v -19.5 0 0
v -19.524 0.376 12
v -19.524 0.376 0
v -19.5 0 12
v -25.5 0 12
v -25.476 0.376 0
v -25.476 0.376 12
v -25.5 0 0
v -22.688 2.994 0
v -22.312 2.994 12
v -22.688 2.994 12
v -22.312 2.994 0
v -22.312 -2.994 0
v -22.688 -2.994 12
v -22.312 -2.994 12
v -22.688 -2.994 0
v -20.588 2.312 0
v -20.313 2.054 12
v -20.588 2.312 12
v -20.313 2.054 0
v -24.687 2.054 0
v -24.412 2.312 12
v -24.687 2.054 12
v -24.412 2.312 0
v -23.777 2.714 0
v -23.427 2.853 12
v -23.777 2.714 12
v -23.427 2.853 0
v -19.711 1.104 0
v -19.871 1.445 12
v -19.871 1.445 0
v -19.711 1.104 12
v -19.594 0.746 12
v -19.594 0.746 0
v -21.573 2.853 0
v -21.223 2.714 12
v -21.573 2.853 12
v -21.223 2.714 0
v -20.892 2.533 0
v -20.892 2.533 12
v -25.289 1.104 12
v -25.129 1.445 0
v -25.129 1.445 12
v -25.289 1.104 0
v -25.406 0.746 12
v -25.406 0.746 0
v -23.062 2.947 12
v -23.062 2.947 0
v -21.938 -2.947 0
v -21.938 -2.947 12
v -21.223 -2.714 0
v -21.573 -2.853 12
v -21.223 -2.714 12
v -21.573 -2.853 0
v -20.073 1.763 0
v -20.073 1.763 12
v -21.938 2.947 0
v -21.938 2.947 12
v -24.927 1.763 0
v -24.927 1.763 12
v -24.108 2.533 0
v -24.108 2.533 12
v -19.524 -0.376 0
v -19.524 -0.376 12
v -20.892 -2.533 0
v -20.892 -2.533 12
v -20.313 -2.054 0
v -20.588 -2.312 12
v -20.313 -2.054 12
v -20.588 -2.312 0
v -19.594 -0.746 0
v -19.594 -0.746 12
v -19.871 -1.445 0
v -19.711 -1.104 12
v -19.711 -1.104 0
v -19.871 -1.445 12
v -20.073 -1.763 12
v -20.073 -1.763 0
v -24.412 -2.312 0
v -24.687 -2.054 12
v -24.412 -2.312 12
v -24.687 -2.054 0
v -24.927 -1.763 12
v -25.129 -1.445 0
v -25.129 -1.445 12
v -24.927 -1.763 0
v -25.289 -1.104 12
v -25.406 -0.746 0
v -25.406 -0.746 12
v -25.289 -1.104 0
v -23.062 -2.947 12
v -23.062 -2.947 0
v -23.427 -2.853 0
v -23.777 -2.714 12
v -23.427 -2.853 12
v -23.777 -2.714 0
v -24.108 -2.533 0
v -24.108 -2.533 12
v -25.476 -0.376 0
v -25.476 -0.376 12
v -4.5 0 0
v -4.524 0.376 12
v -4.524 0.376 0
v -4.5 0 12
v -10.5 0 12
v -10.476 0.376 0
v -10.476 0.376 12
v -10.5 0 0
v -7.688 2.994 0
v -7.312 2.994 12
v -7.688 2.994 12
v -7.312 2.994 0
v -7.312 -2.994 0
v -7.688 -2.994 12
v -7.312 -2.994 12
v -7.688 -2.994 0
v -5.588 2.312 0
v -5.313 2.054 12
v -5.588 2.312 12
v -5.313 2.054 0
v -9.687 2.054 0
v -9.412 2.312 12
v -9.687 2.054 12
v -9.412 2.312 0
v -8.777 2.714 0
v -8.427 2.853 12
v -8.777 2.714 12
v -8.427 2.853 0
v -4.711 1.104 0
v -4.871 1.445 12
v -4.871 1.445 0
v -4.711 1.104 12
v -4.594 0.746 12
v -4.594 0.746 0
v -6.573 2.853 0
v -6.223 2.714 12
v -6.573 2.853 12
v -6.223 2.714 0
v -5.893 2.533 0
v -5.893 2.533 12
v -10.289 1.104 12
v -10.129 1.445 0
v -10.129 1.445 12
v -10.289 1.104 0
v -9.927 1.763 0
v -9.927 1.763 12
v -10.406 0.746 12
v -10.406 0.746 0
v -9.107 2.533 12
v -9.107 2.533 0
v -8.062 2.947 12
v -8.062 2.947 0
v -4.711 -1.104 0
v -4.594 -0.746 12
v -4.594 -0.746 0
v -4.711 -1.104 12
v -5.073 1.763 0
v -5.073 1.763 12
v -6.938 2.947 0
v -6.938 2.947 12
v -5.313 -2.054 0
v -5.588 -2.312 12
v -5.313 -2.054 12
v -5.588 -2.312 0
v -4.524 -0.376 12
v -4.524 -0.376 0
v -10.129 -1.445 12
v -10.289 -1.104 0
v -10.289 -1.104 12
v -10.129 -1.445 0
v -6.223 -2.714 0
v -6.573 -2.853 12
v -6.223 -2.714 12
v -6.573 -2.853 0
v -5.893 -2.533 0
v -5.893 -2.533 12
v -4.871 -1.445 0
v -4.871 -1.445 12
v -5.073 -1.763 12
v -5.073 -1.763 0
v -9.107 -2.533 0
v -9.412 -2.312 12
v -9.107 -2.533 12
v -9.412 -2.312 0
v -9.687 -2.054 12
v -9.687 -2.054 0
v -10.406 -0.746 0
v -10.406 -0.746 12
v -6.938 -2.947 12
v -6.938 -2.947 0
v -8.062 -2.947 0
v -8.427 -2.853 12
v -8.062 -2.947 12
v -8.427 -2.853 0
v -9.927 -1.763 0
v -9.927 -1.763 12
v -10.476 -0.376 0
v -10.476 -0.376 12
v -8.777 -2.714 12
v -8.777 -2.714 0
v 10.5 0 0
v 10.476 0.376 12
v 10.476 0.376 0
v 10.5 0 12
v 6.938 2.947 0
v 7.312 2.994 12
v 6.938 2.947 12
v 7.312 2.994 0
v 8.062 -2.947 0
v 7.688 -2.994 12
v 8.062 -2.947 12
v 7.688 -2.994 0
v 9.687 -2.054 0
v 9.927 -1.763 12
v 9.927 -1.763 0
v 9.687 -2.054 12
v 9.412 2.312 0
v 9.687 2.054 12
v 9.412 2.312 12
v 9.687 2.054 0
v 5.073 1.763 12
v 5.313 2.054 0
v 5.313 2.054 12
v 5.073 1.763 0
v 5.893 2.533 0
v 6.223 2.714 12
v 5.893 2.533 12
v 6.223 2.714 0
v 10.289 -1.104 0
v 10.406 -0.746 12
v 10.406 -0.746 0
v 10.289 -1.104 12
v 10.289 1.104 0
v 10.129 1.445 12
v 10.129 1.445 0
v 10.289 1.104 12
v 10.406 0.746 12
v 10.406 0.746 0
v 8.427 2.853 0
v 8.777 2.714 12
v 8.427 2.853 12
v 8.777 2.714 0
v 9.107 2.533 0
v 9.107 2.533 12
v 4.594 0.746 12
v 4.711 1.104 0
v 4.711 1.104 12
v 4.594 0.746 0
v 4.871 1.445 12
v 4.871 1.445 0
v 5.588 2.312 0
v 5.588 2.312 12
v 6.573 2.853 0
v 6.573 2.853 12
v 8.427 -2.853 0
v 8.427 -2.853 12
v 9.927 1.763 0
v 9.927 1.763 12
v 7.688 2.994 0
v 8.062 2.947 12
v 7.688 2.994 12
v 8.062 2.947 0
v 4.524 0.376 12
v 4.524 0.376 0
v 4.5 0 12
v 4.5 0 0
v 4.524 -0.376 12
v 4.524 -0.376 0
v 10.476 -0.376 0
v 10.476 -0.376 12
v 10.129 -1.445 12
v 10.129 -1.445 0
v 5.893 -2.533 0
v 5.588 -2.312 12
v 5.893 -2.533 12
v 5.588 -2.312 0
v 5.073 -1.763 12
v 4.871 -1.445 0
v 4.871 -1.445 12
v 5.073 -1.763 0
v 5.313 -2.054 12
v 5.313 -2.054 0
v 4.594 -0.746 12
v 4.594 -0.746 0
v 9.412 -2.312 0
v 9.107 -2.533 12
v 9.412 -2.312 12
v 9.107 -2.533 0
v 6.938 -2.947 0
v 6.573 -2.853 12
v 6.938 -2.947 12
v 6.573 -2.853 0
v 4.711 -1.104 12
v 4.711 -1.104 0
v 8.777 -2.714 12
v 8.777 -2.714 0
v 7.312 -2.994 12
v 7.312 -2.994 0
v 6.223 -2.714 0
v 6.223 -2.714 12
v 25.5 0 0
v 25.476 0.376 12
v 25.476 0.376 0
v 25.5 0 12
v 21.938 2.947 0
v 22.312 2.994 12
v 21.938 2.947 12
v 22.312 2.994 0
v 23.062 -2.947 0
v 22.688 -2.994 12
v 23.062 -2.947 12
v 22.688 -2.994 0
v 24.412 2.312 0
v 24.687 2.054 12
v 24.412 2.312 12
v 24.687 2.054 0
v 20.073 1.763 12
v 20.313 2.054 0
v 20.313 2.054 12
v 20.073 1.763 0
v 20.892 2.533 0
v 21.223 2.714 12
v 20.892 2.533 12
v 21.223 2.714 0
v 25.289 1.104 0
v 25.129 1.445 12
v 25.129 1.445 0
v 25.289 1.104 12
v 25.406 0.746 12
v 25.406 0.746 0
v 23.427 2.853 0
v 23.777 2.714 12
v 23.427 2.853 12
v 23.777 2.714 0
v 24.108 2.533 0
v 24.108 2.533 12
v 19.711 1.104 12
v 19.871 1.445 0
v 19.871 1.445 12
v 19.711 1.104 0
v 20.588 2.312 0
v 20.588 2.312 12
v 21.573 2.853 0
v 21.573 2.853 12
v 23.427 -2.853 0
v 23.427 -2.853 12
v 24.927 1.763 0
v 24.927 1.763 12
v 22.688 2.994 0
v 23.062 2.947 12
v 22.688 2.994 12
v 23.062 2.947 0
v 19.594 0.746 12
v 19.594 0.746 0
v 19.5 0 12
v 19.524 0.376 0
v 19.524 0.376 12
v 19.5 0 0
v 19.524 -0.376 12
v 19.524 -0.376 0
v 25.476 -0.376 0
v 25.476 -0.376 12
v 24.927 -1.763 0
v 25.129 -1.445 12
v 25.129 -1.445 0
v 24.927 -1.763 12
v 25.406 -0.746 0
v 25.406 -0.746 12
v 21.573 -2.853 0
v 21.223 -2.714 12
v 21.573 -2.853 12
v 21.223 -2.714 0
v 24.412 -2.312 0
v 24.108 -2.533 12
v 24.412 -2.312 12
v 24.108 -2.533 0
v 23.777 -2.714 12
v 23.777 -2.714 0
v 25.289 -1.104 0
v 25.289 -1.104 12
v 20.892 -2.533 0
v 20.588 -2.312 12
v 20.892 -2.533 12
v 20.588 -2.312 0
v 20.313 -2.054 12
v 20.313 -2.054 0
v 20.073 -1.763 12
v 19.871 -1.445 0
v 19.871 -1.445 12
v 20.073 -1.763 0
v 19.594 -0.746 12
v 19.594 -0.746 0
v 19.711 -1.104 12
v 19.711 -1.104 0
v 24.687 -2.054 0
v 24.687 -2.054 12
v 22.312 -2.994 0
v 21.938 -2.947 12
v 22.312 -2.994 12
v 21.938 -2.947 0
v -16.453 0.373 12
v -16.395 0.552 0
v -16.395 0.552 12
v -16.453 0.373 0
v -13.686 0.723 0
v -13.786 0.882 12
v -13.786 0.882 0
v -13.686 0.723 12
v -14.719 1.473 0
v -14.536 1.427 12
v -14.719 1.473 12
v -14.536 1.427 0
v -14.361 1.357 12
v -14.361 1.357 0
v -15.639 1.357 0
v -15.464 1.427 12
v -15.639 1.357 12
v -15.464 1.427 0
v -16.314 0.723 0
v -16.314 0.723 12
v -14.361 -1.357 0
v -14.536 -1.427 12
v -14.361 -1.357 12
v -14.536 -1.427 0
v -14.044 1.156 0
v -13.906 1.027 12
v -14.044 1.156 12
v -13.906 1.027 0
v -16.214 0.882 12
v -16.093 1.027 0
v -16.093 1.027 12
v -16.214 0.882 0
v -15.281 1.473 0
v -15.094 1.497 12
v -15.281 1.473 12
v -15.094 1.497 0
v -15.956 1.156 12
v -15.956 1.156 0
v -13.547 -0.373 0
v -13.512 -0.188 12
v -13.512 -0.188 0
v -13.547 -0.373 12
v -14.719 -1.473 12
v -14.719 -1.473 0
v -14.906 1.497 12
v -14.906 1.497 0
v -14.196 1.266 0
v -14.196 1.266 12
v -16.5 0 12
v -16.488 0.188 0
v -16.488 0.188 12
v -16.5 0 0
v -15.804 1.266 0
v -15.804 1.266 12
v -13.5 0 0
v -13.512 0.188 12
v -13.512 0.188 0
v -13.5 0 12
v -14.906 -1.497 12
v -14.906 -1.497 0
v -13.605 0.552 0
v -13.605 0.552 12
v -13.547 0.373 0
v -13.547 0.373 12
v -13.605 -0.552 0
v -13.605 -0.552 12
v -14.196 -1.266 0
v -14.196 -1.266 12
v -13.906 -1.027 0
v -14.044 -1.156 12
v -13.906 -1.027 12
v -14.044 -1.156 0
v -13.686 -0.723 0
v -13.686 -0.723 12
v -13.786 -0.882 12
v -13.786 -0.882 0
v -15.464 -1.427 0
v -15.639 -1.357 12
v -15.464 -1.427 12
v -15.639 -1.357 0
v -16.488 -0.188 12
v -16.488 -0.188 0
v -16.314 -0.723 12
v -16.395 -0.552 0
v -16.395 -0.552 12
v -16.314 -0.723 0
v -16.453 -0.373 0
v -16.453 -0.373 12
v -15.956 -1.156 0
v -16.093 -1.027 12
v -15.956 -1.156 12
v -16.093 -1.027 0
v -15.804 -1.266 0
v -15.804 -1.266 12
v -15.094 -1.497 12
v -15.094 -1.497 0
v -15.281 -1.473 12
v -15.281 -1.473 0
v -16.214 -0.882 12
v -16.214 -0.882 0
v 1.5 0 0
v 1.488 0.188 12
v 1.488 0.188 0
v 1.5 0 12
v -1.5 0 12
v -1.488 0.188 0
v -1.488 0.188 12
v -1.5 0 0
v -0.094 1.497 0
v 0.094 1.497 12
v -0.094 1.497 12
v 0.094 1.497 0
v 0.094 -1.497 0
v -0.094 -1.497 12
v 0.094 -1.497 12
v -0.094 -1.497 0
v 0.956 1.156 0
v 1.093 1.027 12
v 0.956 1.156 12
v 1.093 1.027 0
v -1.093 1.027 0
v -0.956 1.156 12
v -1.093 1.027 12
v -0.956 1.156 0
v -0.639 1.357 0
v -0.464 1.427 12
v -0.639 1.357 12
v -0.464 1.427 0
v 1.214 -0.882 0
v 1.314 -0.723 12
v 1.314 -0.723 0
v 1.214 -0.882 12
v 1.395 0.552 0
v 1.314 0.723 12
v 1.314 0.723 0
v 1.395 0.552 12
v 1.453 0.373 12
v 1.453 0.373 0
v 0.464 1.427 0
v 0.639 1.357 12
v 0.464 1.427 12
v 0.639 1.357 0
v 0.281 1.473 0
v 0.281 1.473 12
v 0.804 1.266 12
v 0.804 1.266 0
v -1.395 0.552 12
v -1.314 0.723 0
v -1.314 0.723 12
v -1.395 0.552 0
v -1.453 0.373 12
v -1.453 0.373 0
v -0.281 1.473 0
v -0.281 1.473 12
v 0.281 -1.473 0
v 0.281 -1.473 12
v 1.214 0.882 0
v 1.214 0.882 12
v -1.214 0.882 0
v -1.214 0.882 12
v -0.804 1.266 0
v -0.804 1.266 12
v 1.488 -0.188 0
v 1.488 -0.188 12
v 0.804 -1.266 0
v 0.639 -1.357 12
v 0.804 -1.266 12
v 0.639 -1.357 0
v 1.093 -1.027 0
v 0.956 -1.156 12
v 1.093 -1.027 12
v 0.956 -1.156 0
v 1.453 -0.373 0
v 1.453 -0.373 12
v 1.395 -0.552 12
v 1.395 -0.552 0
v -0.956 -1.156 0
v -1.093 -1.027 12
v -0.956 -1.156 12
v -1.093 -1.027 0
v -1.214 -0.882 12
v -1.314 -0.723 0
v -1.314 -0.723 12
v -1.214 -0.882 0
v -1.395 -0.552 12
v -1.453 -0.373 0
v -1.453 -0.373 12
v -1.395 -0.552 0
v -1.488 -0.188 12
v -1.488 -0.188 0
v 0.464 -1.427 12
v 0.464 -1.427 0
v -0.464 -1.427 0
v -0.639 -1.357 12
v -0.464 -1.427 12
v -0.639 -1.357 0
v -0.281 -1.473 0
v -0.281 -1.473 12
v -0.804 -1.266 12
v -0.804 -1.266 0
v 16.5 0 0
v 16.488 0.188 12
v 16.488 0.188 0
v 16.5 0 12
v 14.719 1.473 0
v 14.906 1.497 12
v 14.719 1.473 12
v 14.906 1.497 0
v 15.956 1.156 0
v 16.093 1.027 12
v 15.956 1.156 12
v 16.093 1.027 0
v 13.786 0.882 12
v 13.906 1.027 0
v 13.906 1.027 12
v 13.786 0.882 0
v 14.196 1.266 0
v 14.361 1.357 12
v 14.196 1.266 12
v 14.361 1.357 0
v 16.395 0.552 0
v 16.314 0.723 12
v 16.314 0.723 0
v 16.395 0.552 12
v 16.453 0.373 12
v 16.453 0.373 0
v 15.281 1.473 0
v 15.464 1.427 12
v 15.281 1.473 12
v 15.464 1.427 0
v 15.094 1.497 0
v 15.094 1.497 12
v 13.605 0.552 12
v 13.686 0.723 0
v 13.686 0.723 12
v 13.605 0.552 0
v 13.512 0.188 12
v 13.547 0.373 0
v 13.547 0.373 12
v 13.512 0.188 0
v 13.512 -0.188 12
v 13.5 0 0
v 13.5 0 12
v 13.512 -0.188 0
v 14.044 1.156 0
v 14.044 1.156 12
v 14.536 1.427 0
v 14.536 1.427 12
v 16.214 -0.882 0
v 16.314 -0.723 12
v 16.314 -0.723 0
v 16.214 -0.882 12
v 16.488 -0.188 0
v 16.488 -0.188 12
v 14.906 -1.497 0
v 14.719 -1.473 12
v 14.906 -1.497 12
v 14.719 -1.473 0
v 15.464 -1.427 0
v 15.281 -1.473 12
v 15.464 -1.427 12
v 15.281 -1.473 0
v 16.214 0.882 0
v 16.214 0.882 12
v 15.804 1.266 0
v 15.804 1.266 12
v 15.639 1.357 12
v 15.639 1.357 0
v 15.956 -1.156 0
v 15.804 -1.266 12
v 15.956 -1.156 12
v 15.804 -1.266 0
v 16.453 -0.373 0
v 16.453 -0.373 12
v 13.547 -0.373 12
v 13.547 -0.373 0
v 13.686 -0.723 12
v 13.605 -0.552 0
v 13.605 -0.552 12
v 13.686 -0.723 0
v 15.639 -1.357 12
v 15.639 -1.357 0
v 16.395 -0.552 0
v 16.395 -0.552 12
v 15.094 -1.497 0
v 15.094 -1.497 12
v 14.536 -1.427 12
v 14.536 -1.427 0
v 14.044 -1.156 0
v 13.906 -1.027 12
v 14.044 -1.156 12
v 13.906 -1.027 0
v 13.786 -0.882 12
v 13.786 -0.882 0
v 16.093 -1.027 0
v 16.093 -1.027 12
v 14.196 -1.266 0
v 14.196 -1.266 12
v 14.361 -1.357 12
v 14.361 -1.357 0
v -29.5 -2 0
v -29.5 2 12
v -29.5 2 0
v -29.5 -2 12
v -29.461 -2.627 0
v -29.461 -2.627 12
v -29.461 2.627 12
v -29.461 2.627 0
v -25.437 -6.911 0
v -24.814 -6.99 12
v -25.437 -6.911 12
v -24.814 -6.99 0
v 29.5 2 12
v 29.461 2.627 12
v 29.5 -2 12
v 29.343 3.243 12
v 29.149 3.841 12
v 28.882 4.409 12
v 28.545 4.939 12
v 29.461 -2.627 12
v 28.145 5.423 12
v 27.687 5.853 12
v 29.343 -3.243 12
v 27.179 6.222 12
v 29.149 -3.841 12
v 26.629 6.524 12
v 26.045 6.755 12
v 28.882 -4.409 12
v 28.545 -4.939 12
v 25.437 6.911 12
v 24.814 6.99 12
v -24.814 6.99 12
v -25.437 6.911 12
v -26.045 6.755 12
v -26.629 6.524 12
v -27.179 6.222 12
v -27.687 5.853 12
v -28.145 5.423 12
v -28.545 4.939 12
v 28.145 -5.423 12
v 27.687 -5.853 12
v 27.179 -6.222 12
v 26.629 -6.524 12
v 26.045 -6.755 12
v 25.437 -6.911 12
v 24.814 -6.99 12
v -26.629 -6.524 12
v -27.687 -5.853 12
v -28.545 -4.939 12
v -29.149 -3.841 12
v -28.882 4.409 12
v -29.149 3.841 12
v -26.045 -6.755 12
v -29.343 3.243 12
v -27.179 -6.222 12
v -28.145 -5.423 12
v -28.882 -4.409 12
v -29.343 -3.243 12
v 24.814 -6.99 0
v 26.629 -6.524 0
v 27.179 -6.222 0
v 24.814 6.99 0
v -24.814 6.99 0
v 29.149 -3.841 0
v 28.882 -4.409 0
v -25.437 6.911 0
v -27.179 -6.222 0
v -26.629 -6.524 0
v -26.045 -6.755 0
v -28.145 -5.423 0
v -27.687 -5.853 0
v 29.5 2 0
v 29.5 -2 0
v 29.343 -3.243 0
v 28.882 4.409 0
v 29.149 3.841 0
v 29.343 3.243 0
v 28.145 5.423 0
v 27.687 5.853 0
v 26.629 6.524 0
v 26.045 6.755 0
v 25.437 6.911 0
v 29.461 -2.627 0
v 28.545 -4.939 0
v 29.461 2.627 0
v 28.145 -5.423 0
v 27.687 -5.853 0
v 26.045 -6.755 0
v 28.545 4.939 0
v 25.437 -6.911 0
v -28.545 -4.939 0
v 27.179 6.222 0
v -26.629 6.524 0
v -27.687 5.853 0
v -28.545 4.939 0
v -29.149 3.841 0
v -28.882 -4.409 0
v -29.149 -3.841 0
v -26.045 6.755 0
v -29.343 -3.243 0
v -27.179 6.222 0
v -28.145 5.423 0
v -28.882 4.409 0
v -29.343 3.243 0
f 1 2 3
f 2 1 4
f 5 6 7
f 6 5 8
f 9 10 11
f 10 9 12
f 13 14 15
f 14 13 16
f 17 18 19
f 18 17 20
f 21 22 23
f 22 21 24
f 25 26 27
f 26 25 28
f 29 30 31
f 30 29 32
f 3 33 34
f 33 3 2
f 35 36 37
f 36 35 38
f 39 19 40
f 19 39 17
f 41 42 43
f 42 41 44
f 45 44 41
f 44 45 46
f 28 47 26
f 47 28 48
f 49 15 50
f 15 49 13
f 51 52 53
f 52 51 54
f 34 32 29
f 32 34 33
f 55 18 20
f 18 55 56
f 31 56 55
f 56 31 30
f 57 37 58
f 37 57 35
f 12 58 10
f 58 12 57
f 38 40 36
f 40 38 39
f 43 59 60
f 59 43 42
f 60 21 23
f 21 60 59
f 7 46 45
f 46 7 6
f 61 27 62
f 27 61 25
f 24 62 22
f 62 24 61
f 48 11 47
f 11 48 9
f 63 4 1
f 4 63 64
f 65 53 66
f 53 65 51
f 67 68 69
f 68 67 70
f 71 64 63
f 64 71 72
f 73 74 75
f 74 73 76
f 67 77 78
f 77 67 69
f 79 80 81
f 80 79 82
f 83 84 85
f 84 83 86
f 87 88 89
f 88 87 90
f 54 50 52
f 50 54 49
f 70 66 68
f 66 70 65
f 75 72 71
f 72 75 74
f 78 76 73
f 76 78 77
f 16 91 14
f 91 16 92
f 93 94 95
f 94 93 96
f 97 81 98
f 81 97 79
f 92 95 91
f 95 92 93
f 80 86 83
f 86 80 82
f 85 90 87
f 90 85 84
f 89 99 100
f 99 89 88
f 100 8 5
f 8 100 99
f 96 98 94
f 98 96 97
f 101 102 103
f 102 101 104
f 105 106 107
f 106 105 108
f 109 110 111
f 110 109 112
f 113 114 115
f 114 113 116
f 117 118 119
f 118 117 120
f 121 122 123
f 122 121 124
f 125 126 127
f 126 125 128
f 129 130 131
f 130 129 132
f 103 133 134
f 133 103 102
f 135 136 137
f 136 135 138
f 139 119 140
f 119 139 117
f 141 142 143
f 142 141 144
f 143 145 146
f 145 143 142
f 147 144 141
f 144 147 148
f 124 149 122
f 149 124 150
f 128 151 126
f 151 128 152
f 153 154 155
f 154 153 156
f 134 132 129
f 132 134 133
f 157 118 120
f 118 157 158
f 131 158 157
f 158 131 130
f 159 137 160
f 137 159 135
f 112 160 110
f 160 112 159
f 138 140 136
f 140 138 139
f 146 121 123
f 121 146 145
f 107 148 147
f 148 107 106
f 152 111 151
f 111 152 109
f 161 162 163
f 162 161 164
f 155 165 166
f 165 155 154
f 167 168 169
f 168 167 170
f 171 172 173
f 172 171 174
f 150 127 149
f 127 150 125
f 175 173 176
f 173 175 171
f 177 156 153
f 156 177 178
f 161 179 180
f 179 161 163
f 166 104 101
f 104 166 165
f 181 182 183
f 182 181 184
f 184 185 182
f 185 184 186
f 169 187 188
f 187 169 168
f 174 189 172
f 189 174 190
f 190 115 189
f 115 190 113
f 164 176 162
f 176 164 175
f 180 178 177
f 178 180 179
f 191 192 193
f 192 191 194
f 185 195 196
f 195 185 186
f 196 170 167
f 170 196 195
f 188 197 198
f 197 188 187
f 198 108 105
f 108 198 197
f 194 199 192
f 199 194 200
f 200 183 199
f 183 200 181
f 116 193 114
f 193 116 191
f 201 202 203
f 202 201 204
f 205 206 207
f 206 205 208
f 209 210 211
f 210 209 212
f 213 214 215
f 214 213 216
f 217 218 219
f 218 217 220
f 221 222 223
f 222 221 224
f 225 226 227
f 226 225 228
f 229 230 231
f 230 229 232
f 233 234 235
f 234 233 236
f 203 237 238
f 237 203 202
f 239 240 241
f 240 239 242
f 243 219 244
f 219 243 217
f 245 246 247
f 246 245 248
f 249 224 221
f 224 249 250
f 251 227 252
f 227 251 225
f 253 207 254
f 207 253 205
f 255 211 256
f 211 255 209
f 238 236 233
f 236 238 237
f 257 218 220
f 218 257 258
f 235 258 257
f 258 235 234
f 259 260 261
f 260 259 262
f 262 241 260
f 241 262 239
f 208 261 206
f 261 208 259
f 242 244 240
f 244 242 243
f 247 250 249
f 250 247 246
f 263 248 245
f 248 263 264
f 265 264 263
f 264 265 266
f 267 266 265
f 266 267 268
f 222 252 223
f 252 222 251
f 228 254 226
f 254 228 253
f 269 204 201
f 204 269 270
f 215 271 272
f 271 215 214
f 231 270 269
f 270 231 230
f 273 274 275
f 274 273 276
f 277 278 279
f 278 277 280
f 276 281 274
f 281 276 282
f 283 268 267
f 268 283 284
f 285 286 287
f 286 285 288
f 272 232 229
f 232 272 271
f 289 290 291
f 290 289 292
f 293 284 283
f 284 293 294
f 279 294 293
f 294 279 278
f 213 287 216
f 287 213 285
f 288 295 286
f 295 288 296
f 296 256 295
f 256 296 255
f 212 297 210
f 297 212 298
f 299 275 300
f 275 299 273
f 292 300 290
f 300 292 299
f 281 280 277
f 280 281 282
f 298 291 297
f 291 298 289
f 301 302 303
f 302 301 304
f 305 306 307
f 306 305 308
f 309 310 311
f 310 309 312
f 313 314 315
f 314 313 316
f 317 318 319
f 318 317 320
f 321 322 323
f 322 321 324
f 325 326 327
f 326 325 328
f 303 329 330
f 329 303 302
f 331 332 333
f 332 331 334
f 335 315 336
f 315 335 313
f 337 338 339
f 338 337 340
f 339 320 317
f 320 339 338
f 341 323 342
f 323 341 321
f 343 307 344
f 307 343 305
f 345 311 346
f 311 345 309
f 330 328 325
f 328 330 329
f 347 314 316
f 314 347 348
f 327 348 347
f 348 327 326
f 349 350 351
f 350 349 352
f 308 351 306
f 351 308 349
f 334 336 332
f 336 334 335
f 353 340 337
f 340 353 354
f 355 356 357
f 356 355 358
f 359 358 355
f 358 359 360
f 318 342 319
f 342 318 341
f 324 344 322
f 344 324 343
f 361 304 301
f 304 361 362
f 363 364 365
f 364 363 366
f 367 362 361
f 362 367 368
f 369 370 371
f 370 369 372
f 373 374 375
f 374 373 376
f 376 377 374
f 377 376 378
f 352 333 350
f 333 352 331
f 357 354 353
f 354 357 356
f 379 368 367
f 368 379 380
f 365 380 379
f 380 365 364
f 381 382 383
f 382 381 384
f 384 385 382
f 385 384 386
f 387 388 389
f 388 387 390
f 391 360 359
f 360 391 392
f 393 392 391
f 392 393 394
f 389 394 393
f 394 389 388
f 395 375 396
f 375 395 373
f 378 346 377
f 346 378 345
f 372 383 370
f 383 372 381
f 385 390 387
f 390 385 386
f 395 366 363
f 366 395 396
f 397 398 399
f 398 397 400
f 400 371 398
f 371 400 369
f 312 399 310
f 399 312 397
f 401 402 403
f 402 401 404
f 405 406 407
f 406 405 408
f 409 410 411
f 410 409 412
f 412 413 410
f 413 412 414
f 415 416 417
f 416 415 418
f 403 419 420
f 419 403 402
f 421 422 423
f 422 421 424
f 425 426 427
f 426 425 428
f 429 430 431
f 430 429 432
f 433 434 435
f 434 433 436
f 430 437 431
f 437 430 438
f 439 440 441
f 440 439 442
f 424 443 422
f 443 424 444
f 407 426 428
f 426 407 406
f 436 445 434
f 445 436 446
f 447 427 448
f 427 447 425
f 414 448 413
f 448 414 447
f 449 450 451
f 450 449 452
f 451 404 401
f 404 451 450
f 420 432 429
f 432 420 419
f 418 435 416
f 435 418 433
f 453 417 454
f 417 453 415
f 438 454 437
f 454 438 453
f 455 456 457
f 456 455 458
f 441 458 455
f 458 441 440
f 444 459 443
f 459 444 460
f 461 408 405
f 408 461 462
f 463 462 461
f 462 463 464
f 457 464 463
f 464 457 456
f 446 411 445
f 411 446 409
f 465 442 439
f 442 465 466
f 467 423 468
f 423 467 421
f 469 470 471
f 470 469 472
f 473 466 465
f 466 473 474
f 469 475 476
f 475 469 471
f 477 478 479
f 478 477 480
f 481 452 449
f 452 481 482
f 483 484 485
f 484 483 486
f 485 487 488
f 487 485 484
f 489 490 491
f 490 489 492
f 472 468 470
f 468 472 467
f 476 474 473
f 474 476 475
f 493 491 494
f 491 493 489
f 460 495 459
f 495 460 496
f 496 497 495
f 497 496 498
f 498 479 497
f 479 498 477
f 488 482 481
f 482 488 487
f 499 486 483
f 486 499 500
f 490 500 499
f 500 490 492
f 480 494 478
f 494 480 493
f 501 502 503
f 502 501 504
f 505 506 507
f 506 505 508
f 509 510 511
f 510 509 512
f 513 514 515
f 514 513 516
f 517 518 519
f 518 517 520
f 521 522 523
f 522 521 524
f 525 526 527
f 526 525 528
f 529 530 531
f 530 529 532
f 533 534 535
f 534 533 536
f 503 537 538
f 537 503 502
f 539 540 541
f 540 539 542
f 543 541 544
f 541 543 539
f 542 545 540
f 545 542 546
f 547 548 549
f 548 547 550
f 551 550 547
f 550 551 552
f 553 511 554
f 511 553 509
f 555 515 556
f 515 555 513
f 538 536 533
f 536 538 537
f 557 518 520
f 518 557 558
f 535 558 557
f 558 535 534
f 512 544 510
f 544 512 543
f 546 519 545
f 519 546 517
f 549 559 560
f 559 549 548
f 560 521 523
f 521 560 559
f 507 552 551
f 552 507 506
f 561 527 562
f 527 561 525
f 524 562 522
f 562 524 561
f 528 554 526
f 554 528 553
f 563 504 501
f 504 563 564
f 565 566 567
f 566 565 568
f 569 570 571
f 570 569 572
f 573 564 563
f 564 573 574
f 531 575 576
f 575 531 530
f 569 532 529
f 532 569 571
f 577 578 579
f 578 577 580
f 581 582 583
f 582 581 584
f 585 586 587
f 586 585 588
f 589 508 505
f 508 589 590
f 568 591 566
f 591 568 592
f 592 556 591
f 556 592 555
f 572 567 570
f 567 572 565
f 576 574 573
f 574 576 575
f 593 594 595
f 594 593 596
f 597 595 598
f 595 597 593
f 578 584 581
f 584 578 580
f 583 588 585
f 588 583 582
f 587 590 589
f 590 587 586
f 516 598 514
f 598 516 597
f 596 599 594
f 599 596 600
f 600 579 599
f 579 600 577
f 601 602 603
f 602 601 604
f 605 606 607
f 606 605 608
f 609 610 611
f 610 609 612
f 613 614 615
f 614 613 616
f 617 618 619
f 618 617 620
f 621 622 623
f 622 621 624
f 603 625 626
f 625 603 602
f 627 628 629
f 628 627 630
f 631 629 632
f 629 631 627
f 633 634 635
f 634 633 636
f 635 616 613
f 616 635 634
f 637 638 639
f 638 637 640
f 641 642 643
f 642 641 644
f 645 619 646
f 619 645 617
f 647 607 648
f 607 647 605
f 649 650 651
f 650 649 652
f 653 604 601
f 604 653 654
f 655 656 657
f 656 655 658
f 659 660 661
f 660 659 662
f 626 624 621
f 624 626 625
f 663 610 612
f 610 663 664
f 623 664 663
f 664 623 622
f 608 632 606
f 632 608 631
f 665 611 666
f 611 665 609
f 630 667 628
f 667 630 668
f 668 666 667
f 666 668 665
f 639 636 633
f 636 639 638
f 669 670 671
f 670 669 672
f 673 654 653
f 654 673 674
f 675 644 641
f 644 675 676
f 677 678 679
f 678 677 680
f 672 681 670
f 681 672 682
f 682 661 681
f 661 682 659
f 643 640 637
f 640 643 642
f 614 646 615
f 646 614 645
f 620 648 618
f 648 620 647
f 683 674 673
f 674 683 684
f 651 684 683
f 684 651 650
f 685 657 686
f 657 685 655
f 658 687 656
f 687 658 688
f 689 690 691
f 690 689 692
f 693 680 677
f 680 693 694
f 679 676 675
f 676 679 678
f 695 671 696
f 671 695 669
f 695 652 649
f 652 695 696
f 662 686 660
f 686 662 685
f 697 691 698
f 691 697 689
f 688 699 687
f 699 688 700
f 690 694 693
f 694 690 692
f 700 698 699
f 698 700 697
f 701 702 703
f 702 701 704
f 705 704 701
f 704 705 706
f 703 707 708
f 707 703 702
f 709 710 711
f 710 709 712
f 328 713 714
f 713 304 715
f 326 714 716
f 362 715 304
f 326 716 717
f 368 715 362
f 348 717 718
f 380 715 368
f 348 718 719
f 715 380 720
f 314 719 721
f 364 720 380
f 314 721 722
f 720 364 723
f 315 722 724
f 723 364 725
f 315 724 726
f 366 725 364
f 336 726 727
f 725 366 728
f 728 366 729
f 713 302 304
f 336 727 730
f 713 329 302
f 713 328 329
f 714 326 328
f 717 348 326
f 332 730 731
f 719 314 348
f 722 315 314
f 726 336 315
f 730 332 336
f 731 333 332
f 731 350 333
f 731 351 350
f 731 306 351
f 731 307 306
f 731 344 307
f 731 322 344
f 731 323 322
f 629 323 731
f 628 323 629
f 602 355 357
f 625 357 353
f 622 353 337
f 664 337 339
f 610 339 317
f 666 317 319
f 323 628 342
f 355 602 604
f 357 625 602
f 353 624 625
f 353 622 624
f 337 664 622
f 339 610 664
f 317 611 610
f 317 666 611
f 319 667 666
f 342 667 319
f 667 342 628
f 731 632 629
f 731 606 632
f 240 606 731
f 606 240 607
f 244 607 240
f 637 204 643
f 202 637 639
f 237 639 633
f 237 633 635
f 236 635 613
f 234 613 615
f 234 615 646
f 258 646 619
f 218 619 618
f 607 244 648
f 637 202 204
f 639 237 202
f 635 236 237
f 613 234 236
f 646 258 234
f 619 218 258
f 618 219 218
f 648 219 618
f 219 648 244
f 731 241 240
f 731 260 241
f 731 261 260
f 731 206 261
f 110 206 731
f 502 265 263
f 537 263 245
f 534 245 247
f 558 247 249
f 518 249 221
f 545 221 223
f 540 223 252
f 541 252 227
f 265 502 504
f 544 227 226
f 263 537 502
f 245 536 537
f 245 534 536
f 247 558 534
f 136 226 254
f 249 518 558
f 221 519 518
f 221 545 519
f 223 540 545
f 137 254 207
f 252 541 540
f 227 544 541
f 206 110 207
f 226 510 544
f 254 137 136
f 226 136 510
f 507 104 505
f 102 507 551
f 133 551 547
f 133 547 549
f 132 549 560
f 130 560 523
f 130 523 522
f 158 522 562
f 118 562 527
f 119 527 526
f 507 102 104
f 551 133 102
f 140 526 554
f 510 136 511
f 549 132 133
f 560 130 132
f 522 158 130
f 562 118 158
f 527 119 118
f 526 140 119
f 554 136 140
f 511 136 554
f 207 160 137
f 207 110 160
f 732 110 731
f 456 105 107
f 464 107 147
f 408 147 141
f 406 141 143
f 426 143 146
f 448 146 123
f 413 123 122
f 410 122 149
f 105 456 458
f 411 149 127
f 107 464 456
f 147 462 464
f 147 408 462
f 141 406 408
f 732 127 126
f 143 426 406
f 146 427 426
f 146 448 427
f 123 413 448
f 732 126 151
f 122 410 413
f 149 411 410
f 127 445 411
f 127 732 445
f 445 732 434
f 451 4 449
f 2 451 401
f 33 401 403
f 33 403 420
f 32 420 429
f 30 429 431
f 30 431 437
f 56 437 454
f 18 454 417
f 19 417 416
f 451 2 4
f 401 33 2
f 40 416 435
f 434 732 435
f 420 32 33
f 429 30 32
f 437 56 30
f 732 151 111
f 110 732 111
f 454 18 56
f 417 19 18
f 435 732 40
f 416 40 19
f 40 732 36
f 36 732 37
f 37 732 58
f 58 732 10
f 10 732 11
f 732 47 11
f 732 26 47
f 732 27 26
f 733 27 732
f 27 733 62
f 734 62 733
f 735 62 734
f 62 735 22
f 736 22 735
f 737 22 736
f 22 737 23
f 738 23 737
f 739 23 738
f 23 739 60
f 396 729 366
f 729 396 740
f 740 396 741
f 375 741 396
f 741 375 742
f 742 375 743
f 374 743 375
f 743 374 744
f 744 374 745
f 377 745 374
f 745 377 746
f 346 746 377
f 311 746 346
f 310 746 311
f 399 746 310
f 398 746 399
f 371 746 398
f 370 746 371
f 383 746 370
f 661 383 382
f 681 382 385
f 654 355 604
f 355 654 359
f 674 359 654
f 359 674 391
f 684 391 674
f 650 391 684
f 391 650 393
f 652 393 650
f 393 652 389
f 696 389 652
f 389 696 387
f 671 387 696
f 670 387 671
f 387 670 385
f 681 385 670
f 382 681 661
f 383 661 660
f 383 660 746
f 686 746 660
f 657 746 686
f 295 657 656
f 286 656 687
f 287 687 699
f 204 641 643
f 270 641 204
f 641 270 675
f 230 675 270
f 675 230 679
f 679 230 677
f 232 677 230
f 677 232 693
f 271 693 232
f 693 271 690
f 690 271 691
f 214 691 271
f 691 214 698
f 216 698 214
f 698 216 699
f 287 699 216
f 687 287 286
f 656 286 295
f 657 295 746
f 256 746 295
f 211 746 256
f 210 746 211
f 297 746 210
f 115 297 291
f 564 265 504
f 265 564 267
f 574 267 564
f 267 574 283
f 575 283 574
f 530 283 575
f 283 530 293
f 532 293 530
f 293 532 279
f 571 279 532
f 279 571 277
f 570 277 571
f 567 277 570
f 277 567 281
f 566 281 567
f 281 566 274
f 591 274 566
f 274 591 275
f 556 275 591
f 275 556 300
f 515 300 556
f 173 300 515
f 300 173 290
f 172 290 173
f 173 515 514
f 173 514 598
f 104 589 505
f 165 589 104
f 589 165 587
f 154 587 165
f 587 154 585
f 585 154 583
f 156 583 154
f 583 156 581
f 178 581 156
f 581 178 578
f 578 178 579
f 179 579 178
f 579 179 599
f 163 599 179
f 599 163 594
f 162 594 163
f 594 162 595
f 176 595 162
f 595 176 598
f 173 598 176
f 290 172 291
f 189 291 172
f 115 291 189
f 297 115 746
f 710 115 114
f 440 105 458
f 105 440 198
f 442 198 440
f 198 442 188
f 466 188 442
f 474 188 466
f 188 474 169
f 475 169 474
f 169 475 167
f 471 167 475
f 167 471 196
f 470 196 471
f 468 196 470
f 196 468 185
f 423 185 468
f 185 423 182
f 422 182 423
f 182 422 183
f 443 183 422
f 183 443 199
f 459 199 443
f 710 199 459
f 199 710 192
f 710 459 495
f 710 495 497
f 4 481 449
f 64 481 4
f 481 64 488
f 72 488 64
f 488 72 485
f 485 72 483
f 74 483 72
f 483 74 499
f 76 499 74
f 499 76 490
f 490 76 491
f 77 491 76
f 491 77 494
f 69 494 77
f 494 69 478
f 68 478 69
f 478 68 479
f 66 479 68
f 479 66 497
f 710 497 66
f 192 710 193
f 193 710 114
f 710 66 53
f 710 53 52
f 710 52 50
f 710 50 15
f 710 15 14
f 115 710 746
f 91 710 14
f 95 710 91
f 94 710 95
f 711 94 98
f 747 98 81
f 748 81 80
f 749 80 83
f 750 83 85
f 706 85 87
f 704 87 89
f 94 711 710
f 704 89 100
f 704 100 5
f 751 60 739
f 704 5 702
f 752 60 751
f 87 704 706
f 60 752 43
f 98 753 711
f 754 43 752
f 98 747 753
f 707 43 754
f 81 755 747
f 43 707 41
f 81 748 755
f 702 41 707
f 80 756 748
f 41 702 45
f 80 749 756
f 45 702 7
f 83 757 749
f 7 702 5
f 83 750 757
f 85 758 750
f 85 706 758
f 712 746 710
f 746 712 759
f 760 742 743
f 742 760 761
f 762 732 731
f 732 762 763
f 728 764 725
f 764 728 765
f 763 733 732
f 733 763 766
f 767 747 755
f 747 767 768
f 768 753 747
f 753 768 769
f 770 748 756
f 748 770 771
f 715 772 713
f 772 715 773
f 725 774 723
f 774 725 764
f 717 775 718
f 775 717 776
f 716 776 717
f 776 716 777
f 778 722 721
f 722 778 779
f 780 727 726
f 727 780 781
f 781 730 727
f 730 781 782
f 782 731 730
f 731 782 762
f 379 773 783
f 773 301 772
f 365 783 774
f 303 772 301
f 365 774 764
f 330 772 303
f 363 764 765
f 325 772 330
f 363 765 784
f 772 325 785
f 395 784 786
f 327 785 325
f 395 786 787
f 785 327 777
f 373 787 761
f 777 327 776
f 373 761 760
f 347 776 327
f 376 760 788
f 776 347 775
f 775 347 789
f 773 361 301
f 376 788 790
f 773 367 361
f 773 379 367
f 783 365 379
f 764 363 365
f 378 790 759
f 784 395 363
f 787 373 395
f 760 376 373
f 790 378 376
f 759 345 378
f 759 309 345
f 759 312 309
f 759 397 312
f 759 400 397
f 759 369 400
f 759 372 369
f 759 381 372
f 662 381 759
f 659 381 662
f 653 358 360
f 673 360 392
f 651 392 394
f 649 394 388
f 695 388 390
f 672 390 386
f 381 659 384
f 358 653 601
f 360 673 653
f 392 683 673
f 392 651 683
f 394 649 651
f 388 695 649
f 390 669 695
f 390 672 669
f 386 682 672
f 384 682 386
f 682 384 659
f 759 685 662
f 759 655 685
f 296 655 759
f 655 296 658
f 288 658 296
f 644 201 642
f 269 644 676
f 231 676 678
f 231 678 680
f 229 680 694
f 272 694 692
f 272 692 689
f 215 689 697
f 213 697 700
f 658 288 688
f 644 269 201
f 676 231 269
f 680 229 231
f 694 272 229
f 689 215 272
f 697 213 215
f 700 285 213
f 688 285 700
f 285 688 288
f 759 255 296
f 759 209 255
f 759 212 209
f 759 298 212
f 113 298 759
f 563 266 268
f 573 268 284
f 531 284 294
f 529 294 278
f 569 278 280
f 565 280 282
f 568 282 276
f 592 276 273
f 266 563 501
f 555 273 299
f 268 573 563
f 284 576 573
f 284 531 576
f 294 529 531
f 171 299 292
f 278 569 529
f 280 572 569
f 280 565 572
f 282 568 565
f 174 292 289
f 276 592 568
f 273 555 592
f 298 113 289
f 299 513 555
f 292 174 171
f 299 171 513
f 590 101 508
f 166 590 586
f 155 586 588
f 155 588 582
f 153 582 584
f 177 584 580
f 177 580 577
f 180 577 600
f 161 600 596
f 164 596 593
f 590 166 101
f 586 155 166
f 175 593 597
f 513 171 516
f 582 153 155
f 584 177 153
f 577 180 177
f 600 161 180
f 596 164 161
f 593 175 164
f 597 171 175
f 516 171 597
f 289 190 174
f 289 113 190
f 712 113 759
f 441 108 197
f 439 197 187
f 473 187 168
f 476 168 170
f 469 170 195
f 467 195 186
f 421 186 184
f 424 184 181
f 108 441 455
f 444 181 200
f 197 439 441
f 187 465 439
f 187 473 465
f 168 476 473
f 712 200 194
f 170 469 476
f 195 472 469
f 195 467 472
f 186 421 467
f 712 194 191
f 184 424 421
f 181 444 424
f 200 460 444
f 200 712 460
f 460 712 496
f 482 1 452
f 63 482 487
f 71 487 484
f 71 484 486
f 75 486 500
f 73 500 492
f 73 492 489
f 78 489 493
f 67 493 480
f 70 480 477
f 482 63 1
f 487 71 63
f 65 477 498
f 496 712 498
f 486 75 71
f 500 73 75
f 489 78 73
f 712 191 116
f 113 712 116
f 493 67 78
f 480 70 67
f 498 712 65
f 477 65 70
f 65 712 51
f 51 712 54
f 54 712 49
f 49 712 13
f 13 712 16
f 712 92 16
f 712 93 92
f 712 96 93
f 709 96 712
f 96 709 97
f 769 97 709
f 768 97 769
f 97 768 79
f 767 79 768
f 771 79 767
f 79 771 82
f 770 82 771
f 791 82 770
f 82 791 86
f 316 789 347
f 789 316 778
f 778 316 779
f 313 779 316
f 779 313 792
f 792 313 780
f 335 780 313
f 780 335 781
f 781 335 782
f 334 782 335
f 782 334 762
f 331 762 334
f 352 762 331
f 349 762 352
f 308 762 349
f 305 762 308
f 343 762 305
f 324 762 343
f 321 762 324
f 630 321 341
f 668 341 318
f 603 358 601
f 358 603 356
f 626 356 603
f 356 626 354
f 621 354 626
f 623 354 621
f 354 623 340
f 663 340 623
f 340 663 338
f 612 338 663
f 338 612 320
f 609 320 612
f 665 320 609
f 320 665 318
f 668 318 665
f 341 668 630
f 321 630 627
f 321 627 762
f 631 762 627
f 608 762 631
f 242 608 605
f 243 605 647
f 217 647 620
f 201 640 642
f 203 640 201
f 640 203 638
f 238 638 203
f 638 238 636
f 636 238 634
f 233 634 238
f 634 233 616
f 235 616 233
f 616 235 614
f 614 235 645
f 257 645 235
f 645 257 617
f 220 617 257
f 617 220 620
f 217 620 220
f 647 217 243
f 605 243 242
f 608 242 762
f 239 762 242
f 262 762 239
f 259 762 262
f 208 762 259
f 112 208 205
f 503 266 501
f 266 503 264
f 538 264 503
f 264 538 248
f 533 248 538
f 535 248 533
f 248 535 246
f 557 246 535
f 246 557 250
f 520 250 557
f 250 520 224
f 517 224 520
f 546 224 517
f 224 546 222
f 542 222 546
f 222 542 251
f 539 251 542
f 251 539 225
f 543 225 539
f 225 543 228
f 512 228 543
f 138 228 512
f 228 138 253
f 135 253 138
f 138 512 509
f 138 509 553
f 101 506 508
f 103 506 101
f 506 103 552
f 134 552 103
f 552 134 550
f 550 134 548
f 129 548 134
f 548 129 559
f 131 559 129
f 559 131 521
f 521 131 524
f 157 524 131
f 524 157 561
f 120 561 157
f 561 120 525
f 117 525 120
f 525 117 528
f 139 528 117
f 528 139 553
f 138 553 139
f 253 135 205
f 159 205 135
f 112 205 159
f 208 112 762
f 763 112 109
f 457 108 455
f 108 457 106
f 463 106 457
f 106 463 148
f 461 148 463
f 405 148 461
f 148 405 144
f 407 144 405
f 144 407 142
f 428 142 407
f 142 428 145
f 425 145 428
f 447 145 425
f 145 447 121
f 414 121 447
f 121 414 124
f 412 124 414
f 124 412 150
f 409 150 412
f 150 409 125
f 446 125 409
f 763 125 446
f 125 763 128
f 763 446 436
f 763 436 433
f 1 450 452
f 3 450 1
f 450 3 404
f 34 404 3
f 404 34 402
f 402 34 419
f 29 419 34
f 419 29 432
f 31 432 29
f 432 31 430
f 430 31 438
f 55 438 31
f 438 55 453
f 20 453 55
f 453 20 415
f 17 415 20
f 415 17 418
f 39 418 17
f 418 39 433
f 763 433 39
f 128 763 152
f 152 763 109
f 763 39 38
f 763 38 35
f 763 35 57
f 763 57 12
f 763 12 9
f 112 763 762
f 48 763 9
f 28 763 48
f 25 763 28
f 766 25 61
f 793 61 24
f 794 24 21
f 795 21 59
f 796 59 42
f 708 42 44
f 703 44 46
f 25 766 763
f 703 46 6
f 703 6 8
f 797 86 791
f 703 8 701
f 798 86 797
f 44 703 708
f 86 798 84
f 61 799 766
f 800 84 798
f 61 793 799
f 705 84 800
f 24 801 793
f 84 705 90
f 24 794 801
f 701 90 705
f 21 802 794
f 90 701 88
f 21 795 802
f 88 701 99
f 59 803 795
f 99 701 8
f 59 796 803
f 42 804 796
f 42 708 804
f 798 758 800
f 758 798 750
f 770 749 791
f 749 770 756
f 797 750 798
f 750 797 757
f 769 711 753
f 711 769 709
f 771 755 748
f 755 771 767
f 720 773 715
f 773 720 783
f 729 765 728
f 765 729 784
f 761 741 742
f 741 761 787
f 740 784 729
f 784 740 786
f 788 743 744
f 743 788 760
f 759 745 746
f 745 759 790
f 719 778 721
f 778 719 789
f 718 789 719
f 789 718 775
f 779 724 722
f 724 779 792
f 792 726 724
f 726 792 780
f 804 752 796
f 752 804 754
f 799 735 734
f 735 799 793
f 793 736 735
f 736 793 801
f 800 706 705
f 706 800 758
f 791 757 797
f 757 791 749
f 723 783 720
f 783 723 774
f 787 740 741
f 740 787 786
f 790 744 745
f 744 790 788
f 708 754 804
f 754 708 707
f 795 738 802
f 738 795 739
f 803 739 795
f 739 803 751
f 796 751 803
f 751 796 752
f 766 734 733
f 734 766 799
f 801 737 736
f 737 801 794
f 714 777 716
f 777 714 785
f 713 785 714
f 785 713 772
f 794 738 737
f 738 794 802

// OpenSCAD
$fn = 50;


difference() {
	union() {
		*color(alpha = 1.0000000000, c = "gray") {
			translate(v = [0, 7, 0]) {
				linear_extrude(height = 1) {
					text(font = "Arial:style=Bold", halign = "center", size = 4.5000000000, text = "COMMENT plate main", valign = "center");
				}
			}
		}
		*color(alpha = 1.0000000000, c = "gray") {
			translate(v = [0, 14, 0]) {
				linear_extrude(height = 1) {
					text(font = "Arial:style=Bold", halign = "center", size = 4.5000000000, text = "COMMENT description oobb_plate_shape_p_type_12_depth_4_width_1_height_12_thickness_true_both_holes", valign = "center");
				}
			}
		}
		hull() {
			translate(v = [-24.5000000000, 2.0000000000, 0]) {
				cylinder(h = 12, r = 5);
			}
			translate(v = [24.5000000000, 2.0000000000, 0]) {
				cylinder(h = 12, r = 5);
			}
			translate(v = [-24.5000000000, -2.0000000000, 0]) {
				cylinder(h = 12, r = 5);
			}
			translate(v = [24.5000000000, -2.0000000000, 0]) {
				cylinder(h = 12, r = 5);
			}
		}
	}
	union() {
		*color(alpha = 1.0000000000, c = "gray") {
			translate(v = [0, 7, 0]) {
				linear_extrude(height = 1) {
					text(font = "Arial:style=Bold", halign = "center", size = 4.5000000000, text = "COMMENT holes main", valign = "center");
				}
			}
		}
		*color(alpha = 1.0000000000, c = "gray") {
			translate(v = [0, 14, 0]) {
				linear_extrude(height = 1) {
					text(font = "Arial:style=Bold", halign = "center", size = 4.5000000000, text = "COMMENT description oobb_holes_shape_n_type_4_width_1_height_12_thickness_true_both_holes", valign = "center");
				}
			}
		}
		translate(v = [-22.5000000000, 0.0000000000, 0]) {
			translate(v = [0, 0, -50]) {
				cylinder(h = 100, r = 3.0000000000);
			}
		}
		translate(v = [-7.5000000000, 0.0000000000, 0]) {
			translate(v = [0, 0, -50]) {
				cylinder(h = 100, r = 3.0000000000);
			}
		}
		translate(v = [7.5000000000, 0.0000000000, 0]) {
			translate(v = [0, 0, -50]) {
				cylinder(h = 100, r = 3.0000000000);
			}
		}
		translate(v = [22.5000000000, 0.0000000000, 0]) {
			translate(v = [0, 0, -50]) {
				cylinder(h = 100, r = 3.0000000000);
			}
		}
		translate(v = [-22.5000000000, 0.0000000000, 0]) {
			translate(v = [0, 0, -50]) {
				cylinder(h = 100, r = 1.5000000000);
			}
		}
		translate(v = [-15.0000000000, 0.0000000000, 0]) {
			translate(v = [0, 0, -50]) {
				cylinder(h = 100, r = 1.5000000000);
			}
		}
		translate(v = [-7.5000000000, 0.0000000000, 0]) {
			translate(v = [0, 0, -50]) {
				cylinder(h = 100, r = 1.5000000000);
			}
		}
		translate(v = [0, 0, -50]) {
			cylinder(h = 100, r = 1.5000000000);
		}
		translate(v = [7.5000000000, 0.0000000000, 0]) {
			translate(v = [0, 0, -50]) {
				cylinder(h = 100, r = 1.5000000000);
			}
		}
		translate(v = [15.0000000000, 0.0000000000, 0]) {
			translate(v = [0, 0, -50]) {
				cylinder(h = 100, r = 1.5000000000);
			}
		}
		translate(v = [22.5000000000, 0.0000000000, 0]) {
			translate(v = [0, 0, -50]) {
				cylinder(h = 100, r = 1.5000000000);
			}
		}
	}
}
